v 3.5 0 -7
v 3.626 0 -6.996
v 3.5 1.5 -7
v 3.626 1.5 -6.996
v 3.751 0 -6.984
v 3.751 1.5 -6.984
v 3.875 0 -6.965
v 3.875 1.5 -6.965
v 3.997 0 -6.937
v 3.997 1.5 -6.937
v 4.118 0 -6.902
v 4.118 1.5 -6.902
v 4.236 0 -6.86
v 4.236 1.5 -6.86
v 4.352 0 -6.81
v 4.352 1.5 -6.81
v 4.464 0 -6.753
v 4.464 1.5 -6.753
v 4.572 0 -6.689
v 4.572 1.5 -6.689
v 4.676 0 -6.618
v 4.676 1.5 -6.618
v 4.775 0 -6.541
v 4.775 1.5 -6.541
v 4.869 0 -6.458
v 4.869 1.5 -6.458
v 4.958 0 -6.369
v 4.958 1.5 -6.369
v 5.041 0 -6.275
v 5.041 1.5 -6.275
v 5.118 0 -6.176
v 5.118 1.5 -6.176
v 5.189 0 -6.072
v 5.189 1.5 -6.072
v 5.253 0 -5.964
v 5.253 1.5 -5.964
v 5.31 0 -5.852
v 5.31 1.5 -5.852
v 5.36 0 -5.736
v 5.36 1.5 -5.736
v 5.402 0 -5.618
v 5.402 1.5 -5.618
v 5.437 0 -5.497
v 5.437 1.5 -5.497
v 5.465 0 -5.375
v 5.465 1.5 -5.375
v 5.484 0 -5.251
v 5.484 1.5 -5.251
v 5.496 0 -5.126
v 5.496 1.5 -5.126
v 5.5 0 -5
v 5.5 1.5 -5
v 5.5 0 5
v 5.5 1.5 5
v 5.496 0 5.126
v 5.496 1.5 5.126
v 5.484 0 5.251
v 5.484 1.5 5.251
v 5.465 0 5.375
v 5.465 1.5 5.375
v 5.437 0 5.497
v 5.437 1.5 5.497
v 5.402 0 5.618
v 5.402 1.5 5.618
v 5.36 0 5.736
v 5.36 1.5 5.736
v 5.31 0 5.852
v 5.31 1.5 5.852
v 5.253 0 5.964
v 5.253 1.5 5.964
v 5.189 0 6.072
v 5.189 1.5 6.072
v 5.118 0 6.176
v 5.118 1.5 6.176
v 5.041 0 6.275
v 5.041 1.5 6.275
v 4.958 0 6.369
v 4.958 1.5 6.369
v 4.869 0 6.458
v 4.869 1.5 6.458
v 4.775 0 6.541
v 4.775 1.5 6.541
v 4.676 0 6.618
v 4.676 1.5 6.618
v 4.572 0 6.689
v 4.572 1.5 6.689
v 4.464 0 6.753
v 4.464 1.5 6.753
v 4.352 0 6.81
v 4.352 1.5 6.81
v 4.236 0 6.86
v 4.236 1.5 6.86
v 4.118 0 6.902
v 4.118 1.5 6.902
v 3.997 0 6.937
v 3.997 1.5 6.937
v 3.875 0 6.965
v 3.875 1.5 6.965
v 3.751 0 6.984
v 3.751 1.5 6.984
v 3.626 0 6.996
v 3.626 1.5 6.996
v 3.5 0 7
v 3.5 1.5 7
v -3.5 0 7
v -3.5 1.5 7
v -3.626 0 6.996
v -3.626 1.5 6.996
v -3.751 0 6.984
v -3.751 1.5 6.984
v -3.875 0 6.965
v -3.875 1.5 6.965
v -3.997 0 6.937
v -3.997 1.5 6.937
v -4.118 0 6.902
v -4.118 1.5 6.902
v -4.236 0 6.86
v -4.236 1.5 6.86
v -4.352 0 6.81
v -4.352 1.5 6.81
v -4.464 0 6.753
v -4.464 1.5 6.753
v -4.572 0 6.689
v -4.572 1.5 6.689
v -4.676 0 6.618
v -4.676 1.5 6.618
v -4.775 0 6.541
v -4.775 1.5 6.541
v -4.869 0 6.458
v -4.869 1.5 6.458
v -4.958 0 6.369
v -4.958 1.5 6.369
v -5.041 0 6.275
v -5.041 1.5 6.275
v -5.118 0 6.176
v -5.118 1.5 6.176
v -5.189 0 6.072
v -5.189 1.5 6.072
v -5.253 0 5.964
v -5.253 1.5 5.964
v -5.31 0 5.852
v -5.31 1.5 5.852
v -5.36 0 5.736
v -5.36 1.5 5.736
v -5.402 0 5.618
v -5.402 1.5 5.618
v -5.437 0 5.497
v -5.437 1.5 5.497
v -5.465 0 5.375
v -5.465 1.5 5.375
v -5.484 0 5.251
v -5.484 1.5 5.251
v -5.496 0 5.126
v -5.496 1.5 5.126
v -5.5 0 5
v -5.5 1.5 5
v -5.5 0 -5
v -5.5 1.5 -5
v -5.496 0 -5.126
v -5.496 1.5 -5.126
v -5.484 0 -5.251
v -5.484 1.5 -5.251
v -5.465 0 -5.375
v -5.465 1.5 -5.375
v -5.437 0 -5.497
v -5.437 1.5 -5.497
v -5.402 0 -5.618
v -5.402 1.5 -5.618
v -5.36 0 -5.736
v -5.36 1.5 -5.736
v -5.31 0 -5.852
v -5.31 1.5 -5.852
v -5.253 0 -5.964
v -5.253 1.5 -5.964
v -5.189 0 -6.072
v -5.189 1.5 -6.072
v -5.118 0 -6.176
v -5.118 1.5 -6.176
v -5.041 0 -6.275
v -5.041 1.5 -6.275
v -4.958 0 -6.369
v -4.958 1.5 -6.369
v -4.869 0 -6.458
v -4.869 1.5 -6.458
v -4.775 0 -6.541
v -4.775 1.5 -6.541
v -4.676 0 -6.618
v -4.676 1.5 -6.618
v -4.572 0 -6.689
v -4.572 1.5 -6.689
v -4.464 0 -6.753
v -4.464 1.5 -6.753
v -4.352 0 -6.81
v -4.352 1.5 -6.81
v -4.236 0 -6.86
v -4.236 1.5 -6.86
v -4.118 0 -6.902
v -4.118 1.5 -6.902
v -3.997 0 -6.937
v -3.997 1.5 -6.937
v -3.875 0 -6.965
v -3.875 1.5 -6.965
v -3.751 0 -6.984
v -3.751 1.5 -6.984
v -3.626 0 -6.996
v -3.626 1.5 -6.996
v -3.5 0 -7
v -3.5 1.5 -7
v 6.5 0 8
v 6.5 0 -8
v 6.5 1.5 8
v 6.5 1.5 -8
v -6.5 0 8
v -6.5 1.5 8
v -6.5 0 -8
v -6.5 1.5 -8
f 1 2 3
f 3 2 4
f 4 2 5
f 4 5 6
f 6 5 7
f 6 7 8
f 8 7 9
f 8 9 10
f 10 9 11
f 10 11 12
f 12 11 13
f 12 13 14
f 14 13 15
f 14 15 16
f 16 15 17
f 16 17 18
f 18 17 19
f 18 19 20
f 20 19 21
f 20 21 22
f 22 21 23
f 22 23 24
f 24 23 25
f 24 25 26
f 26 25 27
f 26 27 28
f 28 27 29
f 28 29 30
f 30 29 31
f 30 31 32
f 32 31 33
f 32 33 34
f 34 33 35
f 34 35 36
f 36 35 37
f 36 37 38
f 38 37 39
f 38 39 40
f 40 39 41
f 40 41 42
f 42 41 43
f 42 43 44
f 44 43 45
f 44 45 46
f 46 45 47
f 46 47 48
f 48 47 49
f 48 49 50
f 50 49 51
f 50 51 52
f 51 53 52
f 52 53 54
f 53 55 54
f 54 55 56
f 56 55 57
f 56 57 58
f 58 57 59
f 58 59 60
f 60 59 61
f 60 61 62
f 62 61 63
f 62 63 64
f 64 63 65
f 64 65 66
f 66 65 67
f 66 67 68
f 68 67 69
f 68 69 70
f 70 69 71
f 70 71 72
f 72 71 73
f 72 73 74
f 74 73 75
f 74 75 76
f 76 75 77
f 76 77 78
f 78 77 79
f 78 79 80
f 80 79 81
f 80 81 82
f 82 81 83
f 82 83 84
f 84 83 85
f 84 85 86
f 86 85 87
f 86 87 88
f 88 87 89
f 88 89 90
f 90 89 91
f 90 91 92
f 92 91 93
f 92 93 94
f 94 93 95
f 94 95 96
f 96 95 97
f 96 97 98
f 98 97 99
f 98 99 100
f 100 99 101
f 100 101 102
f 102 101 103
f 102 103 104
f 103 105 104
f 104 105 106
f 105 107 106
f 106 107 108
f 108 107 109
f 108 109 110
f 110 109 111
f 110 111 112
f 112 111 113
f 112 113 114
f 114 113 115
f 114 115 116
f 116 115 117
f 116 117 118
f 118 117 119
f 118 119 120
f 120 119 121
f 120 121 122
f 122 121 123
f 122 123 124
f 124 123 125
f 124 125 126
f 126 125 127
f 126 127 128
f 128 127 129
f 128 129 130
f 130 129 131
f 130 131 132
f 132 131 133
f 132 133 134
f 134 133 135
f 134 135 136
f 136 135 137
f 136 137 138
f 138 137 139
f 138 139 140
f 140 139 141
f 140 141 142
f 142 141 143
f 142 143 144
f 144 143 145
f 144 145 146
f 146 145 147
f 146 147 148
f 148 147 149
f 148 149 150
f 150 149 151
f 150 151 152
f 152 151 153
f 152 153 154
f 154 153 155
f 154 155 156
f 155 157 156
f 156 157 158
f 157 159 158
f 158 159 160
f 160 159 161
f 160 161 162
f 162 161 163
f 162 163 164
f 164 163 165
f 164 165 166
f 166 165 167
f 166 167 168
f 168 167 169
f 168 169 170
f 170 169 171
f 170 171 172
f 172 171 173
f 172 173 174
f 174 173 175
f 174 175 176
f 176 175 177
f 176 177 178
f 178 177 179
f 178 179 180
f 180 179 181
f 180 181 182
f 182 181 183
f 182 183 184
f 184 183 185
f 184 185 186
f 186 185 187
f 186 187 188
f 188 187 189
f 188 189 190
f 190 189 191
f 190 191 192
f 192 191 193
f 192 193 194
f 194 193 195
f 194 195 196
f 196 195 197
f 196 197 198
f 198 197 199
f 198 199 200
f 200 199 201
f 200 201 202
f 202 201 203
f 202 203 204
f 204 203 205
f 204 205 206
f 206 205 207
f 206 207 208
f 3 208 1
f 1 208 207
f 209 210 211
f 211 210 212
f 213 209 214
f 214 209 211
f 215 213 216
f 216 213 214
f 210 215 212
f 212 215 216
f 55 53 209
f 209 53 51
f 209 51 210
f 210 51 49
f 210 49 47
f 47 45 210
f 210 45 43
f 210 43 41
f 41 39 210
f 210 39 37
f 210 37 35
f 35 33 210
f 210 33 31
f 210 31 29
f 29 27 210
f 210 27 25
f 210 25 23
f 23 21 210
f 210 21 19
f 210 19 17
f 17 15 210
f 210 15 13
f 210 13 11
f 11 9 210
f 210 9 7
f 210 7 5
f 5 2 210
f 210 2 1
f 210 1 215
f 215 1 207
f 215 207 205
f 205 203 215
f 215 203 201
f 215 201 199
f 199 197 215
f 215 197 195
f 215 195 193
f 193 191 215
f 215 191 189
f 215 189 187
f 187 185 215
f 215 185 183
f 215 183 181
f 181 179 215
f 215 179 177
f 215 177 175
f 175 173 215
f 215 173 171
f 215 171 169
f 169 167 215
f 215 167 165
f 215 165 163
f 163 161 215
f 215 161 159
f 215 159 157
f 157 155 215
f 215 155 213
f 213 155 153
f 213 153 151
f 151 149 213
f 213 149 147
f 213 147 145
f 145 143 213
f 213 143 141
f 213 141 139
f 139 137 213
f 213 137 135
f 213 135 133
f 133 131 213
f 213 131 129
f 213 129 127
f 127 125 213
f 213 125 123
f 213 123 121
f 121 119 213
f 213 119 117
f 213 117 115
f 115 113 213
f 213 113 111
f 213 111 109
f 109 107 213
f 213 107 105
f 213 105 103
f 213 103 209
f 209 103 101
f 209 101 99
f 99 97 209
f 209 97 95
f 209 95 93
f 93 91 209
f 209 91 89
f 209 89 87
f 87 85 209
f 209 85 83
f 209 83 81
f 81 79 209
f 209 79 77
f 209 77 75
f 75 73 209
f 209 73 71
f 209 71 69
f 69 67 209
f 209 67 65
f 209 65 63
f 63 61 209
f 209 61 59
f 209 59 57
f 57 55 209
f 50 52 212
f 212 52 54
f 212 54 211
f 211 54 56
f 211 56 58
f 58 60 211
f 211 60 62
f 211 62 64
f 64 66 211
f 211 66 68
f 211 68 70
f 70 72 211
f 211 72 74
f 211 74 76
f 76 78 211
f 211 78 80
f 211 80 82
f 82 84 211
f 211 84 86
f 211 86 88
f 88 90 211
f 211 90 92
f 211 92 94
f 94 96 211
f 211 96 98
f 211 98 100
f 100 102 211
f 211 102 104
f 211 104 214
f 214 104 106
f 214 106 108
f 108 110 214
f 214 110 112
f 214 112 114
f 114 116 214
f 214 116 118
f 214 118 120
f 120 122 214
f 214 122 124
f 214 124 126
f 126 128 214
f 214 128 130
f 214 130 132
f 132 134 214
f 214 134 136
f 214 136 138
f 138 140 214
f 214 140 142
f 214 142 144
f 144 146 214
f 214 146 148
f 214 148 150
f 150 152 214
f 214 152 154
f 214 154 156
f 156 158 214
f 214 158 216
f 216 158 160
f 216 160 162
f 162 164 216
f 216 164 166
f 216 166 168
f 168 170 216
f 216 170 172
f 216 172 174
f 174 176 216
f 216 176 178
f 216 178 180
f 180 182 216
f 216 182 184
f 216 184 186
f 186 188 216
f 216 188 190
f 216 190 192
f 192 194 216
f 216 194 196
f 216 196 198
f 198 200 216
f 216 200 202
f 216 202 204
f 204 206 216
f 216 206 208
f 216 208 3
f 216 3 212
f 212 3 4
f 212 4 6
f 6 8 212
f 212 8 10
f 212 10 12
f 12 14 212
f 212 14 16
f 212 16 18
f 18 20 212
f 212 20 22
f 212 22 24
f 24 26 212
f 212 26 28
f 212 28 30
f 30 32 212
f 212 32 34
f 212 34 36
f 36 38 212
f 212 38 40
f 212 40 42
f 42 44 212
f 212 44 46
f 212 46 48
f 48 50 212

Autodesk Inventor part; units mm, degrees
ref_plane "YZ Plane" through (0, 0, 0) normal (1, 0, 0) x (0, 1, 0)
ref_plane "XZ Plane" through (0, 0, 0) normal (0, 1, 0) x (-1, 0, 0)
ref_plane "XY Plane" through (0, 0, 0) normal (0, 0, 1) x (1, 0, 0)
sketch "Sketch1" plane through (0, 0, 0) normal (0, 1, 0) x (-1, 0, 0)
  line L0 (6.5, -8) -> (-6.5, -8)
  line L1 (-6.5, -8) -> (-6.5, 8)
  line L2 (-6.5, 8) -> (6.5, 8)
  line L3 (6.5, 8) -> (6.5, -8)
  line L4 (6.5, -8) -> (-6.5, 8) construction
  line L5 (-6.5, -8) -> (6.5, 8) construction
  line L6 (5.5, -7) -> (-5.5, -7)
  line L7 (-5.5, -7) -> (-5.5, 7)
  line L8 (-5.5, 7) -> (5.5, 7)
  line L9 (5.5, 7) -> (5.5, -7)
  point P0 (0, 0)
  dimension "d0" = 13
  dimension "d1" = 16
  dimension "d2" = 1
extrude "Extrusion1" add sketch "Sketch1" along normal blind 1.5
fillet "Fillet1" radius 2 4 edges at (-5.5, 0.75, -7) (-5.5, 0.75, 7) (5.5, 0.75, 7) (5.5, 0.75, -7)
properties part number "cellSTORM_chip_chamber"
